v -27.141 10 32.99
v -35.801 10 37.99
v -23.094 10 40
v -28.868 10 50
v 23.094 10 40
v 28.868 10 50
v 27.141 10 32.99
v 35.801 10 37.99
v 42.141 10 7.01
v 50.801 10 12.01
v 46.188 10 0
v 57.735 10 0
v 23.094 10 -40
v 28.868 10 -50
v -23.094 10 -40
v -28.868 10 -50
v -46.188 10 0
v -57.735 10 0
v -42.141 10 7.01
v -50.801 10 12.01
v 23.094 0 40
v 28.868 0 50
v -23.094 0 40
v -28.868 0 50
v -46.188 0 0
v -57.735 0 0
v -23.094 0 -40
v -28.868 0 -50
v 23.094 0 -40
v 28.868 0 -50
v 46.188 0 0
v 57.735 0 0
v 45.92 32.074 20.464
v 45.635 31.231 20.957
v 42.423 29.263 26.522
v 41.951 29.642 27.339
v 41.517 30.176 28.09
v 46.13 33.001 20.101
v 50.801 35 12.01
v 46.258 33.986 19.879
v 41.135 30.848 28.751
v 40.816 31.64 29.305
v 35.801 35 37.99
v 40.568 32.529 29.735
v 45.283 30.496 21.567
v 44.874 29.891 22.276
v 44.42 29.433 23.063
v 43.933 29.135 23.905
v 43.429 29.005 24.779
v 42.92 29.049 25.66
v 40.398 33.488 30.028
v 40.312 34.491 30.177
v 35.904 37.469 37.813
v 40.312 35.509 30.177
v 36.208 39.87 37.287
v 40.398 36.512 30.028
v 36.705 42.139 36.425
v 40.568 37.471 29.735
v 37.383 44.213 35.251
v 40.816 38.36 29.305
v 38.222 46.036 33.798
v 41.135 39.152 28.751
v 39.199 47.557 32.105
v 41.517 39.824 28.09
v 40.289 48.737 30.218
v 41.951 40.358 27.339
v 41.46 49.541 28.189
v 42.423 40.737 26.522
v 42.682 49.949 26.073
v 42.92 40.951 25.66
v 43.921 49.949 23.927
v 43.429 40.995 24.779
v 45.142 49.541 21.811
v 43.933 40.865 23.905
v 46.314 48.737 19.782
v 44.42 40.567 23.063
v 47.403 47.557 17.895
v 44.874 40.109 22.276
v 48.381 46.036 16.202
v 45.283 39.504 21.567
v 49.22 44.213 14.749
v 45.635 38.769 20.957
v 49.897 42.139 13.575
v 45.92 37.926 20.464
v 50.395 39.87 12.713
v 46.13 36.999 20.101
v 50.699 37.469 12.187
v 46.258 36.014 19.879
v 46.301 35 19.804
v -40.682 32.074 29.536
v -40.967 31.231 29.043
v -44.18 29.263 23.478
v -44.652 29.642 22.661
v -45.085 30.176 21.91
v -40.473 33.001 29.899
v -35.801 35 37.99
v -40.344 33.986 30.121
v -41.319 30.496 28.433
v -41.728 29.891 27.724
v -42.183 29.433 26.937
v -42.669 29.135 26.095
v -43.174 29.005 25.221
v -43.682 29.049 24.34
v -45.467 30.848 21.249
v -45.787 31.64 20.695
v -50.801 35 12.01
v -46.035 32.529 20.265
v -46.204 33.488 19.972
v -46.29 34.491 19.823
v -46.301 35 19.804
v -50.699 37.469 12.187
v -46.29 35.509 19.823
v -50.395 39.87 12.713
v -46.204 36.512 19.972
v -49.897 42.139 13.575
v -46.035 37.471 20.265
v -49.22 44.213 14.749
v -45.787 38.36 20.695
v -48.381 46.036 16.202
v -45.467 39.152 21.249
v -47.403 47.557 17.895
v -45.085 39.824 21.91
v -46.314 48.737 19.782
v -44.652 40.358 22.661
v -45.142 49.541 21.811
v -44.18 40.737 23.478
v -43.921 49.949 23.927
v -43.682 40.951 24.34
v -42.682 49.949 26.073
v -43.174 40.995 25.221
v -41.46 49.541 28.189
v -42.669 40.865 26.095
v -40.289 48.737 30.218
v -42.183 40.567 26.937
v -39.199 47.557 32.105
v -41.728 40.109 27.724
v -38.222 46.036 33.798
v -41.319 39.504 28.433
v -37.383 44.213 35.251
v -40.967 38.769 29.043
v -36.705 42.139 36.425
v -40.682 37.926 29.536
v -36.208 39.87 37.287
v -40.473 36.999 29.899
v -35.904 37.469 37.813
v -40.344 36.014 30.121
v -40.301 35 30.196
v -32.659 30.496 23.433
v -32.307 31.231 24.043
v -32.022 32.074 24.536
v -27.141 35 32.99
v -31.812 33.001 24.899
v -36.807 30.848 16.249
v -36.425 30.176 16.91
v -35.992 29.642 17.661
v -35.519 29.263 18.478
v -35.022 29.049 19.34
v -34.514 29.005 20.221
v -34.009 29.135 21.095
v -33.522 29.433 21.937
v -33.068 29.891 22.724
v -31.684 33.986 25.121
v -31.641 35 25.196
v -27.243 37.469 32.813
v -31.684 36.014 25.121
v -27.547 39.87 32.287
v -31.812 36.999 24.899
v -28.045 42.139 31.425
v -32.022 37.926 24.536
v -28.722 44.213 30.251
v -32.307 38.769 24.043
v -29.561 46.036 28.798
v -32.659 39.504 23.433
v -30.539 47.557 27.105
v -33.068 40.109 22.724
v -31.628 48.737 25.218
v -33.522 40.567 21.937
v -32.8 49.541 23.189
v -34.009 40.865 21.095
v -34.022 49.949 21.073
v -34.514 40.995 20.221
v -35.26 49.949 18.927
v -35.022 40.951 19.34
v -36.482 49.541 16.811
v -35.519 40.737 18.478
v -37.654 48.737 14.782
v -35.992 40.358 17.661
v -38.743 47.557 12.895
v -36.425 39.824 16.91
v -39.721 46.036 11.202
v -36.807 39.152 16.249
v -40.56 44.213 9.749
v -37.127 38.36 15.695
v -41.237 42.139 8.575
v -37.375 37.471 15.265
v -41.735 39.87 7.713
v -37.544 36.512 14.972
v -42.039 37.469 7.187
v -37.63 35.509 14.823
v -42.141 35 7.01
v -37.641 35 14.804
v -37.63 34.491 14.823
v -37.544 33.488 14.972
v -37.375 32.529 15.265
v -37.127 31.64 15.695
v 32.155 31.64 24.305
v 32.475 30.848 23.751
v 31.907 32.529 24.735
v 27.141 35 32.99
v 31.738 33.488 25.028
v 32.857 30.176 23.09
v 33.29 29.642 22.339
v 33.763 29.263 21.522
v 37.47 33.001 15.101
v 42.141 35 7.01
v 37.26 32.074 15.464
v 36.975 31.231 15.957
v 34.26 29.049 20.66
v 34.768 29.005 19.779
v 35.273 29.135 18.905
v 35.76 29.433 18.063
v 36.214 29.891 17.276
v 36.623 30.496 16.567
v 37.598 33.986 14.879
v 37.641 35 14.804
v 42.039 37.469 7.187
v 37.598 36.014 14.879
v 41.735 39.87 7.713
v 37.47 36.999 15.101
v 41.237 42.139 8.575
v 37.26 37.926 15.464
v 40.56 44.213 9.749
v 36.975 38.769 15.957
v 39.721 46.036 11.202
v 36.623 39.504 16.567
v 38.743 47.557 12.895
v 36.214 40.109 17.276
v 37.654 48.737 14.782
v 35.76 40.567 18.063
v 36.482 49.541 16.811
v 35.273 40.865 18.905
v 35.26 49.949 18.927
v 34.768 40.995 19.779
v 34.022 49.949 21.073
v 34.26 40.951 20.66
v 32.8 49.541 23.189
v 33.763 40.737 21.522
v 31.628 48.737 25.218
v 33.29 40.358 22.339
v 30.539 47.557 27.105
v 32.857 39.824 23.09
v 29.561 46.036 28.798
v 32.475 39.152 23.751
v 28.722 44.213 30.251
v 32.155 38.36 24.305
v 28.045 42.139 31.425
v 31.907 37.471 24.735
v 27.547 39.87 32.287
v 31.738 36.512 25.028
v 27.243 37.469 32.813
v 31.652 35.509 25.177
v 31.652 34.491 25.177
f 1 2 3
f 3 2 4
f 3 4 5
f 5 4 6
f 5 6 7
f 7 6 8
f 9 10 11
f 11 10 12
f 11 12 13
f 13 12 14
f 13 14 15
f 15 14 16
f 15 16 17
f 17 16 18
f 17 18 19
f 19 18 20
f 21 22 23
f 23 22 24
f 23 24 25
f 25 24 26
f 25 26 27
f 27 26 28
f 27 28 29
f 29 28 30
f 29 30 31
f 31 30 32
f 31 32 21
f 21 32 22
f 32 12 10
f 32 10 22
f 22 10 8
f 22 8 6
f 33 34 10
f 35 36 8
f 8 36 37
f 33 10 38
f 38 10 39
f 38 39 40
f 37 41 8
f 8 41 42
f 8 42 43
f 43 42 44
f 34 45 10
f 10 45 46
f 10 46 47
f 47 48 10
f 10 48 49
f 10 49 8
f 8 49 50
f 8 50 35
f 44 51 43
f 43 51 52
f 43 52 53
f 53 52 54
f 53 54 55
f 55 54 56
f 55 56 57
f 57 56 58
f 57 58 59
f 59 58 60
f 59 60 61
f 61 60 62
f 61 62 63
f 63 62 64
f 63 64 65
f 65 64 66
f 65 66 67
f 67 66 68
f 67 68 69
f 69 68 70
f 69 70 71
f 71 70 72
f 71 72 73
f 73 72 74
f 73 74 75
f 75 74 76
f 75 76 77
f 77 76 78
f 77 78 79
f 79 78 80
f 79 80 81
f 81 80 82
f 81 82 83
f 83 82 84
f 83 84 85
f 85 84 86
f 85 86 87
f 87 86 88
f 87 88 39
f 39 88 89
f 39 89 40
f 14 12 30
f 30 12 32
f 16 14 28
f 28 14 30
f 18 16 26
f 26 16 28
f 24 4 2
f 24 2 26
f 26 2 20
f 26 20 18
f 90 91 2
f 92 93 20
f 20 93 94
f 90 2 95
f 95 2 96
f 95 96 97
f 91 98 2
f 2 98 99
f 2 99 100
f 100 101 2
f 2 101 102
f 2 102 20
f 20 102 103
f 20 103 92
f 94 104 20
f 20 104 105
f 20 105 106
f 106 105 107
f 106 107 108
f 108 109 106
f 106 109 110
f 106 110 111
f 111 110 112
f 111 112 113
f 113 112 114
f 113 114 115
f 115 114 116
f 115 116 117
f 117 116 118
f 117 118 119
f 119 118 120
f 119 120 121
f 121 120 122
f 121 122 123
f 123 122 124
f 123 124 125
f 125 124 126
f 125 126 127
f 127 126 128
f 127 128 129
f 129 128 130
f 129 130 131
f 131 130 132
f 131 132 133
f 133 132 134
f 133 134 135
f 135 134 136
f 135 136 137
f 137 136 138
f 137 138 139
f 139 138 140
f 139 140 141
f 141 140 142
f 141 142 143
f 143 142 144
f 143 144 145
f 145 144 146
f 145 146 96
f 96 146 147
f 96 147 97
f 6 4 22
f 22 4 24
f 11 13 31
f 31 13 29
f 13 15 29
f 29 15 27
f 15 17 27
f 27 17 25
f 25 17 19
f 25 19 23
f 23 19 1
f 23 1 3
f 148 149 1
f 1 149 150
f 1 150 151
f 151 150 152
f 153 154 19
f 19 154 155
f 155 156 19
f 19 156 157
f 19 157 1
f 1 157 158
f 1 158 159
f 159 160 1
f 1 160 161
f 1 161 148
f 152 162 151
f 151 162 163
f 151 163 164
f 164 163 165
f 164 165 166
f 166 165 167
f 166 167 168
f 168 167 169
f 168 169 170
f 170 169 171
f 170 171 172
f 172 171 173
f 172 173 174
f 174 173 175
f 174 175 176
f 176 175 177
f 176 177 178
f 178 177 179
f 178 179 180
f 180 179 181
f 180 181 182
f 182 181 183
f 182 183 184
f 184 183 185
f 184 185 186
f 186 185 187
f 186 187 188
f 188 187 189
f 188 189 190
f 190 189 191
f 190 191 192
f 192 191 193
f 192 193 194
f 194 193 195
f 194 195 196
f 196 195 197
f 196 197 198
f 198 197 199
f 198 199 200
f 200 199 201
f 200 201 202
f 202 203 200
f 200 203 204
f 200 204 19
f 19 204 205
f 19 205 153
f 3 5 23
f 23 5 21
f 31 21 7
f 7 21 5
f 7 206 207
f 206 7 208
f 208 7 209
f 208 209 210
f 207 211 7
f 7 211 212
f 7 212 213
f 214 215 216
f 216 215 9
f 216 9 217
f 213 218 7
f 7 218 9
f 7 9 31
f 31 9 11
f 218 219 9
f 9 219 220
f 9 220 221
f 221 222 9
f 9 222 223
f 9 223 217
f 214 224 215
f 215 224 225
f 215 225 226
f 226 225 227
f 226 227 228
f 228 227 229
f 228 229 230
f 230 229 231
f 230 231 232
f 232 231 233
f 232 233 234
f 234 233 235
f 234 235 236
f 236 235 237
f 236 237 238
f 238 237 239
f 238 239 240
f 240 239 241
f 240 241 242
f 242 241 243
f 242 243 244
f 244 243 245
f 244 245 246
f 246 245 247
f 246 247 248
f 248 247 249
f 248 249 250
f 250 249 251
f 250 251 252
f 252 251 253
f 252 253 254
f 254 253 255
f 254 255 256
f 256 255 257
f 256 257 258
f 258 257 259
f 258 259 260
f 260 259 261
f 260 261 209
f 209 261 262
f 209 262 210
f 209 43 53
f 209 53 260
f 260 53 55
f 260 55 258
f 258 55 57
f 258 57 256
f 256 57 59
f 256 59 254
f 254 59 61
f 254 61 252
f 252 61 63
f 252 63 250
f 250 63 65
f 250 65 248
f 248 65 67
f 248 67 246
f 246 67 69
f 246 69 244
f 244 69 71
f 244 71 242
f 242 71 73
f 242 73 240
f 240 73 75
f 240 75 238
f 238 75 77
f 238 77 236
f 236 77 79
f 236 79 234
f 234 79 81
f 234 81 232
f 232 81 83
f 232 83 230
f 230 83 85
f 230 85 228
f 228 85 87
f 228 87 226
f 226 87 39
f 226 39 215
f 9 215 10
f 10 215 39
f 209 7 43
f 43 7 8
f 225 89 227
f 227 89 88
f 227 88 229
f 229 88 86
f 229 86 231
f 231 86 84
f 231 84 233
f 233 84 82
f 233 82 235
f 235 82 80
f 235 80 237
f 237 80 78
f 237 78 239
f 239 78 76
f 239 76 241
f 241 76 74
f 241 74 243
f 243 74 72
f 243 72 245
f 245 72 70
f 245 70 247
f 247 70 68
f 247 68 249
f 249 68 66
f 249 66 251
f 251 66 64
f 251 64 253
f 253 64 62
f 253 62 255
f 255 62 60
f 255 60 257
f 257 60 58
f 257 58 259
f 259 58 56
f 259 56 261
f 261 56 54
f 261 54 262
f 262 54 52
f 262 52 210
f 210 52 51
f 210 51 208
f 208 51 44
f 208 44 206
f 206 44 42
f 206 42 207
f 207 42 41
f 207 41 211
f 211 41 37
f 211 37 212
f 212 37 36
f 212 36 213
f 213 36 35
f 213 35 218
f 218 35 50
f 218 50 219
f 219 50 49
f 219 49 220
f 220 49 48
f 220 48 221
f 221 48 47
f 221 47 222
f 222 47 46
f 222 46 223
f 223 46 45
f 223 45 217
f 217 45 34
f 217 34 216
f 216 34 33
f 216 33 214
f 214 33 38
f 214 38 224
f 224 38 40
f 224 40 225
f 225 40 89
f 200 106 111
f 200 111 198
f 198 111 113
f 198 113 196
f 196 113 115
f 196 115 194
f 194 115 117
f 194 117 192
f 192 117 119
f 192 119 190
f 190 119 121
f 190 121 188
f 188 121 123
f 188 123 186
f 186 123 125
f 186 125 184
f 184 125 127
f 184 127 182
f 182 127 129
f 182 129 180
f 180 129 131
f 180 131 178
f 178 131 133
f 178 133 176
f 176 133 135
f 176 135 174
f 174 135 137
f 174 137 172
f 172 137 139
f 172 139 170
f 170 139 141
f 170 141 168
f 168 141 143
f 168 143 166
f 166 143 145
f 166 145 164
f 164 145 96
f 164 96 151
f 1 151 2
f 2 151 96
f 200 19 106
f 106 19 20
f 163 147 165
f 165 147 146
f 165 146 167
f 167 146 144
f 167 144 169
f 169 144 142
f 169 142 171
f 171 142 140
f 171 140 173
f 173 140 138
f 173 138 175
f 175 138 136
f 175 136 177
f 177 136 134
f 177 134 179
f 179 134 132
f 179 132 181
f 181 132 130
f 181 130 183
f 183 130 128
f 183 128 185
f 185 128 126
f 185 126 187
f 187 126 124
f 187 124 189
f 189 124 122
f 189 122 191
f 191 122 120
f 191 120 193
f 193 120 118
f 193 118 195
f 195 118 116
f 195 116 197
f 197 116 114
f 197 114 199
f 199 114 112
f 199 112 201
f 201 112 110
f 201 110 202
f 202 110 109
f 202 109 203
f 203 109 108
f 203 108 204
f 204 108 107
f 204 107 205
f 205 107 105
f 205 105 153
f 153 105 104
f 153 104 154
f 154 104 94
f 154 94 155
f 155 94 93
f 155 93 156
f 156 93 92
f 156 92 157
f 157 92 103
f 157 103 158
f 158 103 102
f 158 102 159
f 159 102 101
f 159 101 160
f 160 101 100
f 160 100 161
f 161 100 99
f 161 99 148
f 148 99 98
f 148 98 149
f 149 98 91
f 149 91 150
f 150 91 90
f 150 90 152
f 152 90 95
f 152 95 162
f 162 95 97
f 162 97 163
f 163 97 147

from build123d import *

# Parameters (mm, degrees)
BOSS_EXTRUDE1_DEPTH = 10
SKETCH2_R           = 6
BOSS_EXTRUDE2_DEPTH = 10


with BuildPart() as part:
    # Sketch1 → Boss-Extrude1 (new body)
    with BuildSketch(Plane(origin=(0, 0, 0), x_dir=(1, 0, 0), z_dir=(0, 1, 0))):
        Polygon((57.735026919, 0), (28.867513459, 50), (-28.867513459, 50), (-57.735026919, 0), (-28.867513459, -50), (28.867513459, -50), align=None)
        Polygon((23.094010768, 40), (-23.094010768, 40), (-46.188021535, 0), (-23.094010768, -40), (23.094010768, -40), (46.188021535, 0), align=None, mode=Mode.SUBTRACT)
    extrude(amount=BOSS_EXTRUDE1_DEPTH)

    # Sketch2 → Boss-Extrude2 (add)
    with BuildSketch(Plane(origin=(43.301270189, 0, 25), x_dir=(0.4999999999999951, 0, -0.8660254037844415), z_dir=(0.8660254037844416, 0, 0.49999999999999517))):
        with BuildLine():
            Line((-15, 35), (-15, 10))
            Line((-15, 10), (15, 10))
            Line((15, 10), (15, 35))
            ThreePointArc((15, 35), (0, 50), (-15, 35))
        make_face()
        with Locations((0, 35)):
            Circle(SKETCH2_R, mode=Mode.SUBTRACT)
    boss_extrude2 = extrude(amount=-BOSS_EXTRUDE2_DEPTH)

    # Mirror7: Boss-Extrude2 across plane
    add(boss_extrude2.mirror(Plane(origin=(0, 0, 0), x_dir=(0, 0, 1), z_dir=(1, 0, 0))))


solid = part.part
